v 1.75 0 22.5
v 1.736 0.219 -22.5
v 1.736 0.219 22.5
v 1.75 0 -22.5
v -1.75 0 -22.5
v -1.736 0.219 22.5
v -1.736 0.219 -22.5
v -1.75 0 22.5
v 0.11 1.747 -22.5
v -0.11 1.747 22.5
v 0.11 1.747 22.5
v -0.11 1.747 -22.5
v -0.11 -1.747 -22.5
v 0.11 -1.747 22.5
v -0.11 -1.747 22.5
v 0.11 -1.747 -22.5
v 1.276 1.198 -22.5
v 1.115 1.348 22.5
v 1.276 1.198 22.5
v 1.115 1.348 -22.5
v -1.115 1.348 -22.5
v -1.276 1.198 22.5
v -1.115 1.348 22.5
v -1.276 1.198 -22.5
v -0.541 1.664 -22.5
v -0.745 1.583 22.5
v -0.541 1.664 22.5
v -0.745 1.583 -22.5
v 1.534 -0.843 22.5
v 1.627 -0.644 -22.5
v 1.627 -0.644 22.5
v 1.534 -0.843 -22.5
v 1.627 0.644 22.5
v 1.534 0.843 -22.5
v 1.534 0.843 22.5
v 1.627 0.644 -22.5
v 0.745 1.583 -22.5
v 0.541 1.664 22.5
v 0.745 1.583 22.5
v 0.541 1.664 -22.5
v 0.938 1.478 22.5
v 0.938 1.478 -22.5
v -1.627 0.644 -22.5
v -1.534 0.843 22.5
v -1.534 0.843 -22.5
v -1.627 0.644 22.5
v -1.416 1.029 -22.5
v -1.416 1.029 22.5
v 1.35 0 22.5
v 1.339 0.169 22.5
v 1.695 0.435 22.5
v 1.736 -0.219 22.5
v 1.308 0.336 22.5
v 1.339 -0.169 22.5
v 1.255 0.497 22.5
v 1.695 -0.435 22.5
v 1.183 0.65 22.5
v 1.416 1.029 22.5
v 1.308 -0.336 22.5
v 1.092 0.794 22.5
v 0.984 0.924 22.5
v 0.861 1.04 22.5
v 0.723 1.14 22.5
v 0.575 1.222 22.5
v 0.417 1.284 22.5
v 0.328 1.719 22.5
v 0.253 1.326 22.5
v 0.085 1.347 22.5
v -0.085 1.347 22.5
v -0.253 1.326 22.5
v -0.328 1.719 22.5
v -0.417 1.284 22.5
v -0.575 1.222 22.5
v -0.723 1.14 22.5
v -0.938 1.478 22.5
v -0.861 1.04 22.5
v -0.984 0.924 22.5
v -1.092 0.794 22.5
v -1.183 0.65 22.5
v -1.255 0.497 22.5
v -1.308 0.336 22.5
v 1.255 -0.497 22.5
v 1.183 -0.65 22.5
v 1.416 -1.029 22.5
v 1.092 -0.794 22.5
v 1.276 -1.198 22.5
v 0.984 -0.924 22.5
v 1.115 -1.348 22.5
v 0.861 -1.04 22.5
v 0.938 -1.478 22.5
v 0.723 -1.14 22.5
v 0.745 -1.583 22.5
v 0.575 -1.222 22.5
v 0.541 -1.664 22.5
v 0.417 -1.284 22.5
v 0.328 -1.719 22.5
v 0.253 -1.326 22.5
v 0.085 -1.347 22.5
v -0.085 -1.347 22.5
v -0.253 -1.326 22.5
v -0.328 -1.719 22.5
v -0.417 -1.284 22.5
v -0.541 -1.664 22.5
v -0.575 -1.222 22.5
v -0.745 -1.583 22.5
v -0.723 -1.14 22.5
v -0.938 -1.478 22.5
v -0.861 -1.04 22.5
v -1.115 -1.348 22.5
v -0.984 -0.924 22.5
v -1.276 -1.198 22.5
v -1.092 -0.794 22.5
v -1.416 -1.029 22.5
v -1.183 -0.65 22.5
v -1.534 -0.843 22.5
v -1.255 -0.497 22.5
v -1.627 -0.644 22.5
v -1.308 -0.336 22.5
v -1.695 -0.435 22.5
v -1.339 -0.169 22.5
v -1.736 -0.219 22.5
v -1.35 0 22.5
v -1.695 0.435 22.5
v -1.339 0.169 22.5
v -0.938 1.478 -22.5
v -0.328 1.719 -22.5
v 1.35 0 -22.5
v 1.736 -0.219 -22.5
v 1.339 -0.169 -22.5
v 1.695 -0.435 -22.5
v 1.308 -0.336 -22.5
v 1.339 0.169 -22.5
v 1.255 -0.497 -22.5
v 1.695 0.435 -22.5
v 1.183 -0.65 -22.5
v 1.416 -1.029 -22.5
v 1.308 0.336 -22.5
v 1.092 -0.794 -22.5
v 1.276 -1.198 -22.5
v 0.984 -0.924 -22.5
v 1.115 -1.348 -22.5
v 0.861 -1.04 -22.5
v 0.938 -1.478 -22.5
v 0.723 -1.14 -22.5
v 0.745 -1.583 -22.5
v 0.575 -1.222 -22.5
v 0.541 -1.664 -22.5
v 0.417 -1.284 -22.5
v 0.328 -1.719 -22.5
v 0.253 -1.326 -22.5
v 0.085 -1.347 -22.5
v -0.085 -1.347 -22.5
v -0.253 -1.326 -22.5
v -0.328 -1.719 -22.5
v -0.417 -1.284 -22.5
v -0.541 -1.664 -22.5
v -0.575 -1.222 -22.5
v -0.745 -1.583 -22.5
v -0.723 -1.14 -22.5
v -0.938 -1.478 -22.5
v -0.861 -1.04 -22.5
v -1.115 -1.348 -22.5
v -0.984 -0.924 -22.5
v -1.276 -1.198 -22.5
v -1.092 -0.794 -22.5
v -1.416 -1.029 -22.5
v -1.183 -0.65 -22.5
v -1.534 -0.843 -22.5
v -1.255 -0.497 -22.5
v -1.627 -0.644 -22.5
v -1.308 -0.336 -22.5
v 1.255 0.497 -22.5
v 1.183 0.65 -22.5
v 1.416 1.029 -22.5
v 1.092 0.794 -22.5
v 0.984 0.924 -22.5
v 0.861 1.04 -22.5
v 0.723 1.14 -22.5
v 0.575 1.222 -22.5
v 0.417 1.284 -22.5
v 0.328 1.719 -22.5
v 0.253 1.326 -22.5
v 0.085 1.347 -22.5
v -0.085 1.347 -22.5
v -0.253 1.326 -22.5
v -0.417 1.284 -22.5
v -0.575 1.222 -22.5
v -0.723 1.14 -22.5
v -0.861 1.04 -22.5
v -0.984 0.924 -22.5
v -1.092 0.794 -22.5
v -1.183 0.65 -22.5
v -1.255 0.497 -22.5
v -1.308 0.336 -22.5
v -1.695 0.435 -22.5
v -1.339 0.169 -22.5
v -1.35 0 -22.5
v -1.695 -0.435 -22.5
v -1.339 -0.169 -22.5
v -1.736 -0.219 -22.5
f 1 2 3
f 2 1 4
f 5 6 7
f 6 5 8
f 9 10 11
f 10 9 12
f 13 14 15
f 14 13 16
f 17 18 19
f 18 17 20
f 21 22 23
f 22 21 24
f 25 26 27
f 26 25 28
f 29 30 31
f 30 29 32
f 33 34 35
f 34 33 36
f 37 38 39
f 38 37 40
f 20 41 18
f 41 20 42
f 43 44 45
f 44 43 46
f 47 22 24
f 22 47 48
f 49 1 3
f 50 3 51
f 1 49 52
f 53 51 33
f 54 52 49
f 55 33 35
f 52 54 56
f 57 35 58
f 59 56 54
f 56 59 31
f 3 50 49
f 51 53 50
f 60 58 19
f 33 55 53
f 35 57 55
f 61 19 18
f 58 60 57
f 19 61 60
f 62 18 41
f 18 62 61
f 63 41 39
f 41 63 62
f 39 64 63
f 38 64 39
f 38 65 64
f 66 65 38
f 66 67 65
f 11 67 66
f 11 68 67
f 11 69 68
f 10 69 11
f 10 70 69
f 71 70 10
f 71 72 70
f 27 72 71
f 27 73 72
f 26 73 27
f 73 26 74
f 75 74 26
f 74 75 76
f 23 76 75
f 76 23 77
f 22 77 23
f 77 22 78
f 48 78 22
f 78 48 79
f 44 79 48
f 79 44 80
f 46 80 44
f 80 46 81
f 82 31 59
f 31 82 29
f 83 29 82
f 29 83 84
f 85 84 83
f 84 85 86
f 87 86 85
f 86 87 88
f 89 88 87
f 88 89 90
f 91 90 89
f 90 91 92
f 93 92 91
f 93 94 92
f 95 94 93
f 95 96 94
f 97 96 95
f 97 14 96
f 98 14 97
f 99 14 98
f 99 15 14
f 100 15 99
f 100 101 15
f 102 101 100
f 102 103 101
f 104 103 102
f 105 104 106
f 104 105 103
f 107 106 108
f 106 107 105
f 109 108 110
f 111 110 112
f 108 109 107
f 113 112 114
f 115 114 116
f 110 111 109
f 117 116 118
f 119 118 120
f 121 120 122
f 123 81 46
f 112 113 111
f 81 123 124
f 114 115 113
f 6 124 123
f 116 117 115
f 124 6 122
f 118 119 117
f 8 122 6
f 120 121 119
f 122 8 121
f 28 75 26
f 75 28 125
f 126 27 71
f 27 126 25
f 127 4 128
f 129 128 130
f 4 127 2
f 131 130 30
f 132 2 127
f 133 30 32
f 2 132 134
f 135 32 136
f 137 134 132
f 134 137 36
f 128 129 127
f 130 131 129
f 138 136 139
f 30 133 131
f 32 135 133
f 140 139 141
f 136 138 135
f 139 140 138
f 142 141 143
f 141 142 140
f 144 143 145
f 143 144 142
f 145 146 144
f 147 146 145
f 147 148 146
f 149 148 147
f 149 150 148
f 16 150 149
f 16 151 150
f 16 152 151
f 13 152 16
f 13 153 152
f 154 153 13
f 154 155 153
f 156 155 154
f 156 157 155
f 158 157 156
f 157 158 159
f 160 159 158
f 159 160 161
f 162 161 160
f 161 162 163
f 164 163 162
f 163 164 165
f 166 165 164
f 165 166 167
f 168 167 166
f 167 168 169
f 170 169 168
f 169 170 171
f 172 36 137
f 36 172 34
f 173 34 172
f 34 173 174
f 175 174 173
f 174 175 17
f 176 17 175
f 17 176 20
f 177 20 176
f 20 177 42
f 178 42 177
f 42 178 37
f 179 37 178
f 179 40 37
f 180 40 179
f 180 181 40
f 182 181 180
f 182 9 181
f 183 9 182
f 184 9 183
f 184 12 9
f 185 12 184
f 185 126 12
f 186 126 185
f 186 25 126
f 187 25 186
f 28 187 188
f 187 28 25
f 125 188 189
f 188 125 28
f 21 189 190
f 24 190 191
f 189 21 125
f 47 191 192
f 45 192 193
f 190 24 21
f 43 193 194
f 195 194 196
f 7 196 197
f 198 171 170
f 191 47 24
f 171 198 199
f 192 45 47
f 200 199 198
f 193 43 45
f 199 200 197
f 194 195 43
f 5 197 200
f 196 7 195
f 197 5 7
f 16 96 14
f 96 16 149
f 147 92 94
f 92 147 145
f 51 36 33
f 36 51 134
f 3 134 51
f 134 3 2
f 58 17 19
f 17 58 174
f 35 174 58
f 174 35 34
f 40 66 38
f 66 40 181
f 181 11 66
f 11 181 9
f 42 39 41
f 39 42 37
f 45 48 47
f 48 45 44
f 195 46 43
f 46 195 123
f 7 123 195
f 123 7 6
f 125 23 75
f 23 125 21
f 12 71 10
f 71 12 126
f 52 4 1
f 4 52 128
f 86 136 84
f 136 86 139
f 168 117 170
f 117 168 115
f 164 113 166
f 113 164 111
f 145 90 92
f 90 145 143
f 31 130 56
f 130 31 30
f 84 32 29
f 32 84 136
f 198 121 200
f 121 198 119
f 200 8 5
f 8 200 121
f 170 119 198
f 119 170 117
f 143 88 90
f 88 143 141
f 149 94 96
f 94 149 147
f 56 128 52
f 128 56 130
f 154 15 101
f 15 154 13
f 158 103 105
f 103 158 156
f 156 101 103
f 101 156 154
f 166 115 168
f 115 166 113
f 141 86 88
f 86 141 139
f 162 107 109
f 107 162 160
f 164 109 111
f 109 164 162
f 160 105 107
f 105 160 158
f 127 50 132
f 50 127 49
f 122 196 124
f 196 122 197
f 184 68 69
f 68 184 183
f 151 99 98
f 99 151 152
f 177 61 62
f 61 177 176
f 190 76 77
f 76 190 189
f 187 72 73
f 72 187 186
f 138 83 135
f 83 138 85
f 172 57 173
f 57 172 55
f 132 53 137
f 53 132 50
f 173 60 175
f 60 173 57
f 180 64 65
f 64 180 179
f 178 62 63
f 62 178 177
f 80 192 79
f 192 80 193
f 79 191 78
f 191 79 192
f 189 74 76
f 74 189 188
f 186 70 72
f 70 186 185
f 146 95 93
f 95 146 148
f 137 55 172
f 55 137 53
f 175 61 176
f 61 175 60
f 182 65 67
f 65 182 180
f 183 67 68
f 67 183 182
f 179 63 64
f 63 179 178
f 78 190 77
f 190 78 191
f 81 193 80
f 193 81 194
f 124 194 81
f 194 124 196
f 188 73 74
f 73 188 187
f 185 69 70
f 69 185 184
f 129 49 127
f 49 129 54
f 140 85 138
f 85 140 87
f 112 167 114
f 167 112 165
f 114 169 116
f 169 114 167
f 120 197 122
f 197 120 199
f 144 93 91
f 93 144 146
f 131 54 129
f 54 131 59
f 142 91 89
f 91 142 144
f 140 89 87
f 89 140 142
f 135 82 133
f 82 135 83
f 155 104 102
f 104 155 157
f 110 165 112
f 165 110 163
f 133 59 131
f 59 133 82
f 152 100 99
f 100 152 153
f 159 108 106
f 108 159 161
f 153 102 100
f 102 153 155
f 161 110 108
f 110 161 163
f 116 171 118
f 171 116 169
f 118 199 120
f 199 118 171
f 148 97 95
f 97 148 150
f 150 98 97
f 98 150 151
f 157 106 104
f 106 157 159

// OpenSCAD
$fn = 50;


difference() {
	union() {
		translate(v = [0, 0, -22.5000000000]) {
			cylinder(h = 45, r = 1.7500000000);
		}
	}
	union() {
		translate(v = [0, 0, -100.0000000000]) {
			cylinder(h = 200, r = 1.3500000000);
		}
	}
}
